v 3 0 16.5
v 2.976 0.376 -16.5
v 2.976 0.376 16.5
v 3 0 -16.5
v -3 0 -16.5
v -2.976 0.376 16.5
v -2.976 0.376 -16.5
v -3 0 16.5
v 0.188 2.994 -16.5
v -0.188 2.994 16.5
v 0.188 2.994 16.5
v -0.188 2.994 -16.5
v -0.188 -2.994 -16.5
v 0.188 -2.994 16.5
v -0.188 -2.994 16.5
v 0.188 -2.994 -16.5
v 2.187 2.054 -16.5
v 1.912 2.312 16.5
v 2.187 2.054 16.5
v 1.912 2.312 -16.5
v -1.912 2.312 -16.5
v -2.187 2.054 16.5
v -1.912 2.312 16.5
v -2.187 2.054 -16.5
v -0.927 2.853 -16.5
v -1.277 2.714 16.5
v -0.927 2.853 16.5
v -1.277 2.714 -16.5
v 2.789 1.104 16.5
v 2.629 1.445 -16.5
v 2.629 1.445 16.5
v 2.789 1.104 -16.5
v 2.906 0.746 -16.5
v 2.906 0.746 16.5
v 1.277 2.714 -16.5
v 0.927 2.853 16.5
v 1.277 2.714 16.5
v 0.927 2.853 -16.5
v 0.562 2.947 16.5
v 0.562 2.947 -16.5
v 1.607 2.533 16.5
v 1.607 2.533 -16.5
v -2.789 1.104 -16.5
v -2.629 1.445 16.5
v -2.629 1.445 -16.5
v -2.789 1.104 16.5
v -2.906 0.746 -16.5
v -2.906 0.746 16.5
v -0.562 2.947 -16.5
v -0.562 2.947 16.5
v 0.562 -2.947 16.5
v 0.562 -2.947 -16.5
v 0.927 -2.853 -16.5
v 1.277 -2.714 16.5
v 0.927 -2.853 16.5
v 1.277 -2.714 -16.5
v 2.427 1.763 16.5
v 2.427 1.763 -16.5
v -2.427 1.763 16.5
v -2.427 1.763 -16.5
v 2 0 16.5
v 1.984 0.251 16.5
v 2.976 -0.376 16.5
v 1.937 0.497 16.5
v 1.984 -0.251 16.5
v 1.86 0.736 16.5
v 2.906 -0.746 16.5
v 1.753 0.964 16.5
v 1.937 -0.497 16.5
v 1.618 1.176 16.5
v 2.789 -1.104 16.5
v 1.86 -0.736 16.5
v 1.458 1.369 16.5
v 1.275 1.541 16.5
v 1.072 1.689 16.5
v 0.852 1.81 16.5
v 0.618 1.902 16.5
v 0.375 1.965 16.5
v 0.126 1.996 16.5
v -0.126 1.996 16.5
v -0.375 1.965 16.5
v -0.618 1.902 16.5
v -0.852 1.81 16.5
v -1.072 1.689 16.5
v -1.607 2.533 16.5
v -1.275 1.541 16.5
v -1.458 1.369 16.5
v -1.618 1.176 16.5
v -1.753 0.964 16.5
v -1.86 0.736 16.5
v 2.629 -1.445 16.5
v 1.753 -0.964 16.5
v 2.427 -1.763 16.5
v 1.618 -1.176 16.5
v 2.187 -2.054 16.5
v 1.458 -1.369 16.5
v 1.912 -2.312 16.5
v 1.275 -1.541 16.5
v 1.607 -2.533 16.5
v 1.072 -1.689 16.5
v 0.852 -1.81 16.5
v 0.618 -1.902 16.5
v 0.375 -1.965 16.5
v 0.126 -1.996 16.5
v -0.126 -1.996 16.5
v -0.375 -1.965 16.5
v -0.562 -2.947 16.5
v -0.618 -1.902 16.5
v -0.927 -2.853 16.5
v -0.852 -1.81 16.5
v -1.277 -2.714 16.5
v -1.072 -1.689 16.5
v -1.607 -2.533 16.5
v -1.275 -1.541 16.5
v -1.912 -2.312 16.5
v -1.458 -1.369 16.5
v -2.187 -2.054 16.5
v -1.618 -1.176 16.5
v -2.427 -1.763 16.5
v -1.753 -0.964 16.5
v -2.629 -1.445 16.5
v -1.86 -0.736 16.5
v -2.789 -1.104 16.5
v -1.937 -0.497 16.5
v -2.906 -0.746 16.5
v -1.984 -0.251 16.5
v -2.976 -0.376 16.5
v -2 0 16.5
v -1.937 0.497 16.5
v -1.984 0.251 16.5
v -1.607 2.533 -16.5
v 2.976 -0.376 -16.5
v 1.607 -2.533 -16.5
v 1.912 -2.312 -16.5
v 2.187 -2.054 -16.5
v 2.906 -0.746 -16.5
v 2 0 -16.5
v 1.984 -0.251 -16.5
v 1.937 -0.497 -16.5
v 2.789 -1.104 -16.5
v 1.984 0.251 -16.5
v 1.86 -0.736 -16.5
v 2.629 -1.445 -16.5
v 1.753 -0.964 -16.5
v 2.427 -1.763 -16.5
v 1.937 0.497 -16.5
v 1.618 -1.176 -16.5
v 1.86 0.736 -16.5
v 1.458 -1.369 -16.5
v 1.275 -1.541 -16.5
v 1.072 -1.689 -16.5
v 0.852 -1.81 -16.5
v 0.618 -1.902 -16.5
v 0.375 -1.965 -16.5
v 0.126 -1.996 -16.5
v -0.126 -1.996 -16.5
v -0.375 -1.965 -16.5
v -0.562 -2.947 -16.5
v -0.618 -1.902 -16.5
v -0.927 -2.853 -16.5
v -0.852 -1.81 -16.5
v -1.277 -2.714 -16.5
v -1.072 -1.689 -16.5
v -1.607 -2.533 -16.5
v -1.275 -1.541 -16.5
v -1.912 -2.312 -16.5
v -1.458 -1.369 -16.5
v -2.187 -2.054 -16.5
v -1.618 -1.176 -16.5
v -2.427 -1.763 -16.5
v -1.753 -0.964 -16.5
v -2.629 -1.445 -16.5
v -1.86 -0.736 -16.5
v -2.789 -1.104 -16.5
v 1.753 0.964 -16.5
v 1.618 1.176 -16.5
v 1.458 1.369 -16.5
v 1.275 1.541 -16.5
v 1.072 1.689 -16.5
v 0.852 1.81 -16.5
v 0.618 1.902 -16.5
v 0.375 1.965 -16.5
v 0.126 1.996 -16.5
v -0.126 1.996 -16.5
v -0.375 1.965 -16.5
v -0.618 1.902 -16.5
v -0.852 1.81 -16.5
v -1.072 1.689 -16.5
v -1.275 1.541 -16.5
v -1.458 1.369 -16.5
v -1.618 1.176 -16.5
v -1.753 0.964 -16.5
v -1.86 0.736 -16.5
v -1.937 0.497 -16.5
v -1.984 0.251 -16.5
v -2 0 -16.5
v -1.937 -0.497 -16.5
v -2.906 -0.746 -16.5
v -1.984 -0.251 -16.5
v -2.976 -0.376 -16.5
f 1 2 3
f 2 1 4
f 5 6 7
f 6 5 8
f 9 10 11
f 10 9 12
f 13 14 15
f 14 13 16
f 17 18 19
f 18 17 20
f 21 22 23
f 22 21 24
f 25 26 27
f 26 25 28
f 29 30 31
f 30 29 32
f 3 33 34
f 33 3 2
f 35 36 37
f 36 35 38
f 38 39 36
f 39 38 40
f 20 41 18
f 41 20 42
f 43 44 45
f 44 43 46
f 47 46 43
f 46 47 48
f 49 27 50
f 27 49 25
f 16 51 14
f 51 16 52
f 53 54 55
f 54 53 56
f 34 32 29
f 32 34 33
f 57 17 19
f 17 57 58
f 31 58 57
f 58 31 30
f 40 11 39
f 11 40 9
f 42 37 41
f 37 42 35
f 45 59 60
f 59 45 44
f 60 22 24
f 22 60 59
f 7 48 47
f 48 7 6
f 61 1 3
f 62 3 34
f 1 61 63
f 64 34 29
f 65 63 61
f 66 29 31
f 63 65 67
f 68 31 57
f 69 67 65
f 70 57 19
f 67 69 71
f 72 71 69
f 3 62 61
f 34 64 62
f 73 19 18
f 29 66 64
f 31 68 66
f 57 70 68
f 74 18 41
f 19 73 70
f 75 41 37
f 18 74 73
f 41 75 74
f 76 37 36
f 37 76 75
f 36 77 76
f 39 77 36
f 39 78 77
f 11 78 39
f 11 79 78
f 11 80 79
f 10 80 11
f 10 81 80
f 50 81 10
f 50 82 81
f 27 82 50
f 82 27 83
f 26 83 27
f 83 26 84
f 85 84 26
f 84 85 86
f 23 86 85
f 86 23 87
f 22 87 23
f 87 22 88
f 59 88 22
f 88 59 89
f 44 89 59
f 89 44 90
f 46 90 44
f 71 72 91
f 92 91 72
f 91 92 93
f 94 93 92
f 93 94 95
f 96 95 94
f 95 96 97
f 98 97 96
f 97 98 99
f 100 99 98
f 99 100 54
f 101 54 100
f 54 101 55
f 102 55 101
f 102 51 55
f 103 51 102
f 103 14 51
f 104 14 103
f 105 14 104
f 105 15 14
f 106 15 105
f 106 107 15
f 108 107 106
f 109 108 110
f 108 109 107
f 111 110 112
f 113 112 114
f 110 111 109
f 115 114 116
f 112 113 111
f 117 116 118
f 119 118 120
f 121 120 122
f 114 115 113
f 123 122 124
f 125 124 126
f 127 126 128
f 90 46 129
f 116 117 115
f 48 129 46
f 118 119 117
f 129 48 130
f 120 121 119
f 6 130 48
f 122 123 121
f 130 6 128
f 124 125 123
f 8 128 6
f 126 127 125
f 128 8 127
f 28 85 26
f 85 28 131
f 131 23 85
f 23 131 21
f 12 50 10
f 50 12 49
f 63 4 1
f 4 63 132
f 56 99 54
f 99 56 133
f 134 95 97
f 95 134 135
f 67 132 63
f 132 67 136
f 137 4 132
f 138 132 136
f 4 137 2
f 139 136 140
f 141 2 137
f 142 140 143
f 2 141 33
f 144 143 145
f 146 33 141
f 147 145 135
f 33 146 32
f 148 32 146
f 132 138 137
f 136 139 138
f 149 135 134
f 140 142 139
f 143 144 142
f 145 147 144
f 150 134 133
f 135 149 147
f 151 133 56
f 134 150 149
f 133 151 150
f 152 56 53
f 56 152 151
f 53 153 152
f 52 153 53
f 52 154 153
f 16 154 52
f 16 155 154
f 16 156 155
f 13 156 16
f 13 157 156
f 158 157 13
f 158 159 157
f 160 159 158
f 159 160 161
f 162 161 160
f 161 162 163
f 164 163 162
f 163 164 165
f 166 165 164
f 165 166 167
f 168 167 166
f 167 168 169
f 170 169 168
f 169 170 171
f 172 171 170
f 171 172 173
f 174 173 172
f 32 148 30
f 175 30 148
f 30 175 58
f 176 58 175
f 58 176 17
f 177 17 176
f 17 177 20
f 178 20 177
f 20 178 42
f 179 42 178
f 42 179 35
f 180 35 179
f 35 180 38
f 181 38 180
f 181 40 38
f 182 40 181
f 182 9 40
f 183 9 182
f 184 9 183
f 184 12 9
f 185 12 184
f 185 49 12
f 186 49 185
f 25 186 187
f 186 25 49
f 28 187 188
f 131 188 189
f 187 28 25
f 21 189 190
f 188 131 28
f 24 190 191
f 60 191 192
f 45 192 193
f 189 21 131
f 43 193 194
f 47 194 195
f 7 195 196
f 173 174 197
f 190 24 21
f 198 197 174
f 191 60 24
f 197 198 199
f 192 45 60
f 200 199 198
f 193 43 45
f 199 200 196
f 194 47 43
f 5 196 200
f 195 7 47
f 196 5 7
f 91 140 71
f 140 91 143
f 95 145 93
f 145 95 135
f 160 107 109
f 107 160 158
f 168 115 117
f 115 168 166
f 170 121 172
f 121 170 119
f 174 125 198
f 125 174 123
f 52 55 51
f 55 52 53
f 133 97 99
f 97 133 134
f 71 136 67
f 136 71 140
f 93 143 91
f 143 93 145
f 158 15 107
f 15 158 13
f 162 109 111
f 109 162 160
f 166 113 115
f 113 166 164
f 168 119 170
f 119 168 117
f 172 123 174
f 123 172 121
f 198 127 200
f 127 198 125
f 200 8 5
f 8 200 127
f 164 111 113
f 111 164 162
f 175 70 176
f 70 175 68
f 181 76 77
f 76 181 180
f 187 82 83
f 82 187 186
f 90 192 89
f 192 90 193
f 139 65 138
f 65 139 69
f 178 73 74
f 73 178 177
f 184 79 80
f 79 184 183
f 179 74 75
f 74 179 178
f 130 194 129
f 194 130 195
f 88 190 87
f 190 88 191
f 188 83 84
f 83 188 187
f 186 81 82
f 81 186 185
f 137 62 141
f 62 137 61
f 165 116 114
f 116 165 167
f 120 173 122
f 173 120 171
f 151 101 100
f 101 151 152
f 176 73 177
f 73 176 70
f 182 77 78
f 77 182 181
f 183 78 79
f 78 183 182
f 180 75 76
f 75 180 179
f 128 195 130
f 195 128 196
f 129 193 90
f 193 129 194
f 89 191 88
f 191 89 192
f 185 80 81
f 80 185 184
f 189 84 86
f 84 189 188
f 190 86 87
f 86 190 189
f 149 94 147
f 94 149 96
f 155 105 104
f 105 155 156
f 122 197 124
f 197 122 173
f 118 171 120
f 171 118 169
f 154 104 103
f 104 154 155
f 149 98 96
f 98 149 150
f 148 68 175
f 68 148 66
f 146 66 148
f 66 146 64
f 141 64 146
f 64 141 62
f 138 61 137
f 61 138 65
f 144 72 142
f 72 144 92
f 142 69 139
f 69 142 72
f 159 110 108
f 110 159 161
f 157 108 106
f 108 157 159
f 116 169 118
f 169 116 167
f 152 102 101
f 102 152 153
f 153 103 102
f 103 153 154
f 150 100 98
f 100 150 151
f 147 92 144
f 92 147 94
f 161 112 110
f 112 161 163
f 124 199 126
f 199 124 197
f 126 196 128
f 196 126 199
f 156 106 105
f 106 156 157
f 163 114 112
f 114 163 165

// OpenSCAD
$fn = 50;


difference() {
	union() {
		translate(v = [0, 0, -16.5000000000]) {
			cylinder(h = 33, r = 3.0000000000);
		}
	}
	union() {
		translate(v = [0, 0, -100.0000000000]) {
			cylinder(h = 200, r = 2);
		}
	}
}
